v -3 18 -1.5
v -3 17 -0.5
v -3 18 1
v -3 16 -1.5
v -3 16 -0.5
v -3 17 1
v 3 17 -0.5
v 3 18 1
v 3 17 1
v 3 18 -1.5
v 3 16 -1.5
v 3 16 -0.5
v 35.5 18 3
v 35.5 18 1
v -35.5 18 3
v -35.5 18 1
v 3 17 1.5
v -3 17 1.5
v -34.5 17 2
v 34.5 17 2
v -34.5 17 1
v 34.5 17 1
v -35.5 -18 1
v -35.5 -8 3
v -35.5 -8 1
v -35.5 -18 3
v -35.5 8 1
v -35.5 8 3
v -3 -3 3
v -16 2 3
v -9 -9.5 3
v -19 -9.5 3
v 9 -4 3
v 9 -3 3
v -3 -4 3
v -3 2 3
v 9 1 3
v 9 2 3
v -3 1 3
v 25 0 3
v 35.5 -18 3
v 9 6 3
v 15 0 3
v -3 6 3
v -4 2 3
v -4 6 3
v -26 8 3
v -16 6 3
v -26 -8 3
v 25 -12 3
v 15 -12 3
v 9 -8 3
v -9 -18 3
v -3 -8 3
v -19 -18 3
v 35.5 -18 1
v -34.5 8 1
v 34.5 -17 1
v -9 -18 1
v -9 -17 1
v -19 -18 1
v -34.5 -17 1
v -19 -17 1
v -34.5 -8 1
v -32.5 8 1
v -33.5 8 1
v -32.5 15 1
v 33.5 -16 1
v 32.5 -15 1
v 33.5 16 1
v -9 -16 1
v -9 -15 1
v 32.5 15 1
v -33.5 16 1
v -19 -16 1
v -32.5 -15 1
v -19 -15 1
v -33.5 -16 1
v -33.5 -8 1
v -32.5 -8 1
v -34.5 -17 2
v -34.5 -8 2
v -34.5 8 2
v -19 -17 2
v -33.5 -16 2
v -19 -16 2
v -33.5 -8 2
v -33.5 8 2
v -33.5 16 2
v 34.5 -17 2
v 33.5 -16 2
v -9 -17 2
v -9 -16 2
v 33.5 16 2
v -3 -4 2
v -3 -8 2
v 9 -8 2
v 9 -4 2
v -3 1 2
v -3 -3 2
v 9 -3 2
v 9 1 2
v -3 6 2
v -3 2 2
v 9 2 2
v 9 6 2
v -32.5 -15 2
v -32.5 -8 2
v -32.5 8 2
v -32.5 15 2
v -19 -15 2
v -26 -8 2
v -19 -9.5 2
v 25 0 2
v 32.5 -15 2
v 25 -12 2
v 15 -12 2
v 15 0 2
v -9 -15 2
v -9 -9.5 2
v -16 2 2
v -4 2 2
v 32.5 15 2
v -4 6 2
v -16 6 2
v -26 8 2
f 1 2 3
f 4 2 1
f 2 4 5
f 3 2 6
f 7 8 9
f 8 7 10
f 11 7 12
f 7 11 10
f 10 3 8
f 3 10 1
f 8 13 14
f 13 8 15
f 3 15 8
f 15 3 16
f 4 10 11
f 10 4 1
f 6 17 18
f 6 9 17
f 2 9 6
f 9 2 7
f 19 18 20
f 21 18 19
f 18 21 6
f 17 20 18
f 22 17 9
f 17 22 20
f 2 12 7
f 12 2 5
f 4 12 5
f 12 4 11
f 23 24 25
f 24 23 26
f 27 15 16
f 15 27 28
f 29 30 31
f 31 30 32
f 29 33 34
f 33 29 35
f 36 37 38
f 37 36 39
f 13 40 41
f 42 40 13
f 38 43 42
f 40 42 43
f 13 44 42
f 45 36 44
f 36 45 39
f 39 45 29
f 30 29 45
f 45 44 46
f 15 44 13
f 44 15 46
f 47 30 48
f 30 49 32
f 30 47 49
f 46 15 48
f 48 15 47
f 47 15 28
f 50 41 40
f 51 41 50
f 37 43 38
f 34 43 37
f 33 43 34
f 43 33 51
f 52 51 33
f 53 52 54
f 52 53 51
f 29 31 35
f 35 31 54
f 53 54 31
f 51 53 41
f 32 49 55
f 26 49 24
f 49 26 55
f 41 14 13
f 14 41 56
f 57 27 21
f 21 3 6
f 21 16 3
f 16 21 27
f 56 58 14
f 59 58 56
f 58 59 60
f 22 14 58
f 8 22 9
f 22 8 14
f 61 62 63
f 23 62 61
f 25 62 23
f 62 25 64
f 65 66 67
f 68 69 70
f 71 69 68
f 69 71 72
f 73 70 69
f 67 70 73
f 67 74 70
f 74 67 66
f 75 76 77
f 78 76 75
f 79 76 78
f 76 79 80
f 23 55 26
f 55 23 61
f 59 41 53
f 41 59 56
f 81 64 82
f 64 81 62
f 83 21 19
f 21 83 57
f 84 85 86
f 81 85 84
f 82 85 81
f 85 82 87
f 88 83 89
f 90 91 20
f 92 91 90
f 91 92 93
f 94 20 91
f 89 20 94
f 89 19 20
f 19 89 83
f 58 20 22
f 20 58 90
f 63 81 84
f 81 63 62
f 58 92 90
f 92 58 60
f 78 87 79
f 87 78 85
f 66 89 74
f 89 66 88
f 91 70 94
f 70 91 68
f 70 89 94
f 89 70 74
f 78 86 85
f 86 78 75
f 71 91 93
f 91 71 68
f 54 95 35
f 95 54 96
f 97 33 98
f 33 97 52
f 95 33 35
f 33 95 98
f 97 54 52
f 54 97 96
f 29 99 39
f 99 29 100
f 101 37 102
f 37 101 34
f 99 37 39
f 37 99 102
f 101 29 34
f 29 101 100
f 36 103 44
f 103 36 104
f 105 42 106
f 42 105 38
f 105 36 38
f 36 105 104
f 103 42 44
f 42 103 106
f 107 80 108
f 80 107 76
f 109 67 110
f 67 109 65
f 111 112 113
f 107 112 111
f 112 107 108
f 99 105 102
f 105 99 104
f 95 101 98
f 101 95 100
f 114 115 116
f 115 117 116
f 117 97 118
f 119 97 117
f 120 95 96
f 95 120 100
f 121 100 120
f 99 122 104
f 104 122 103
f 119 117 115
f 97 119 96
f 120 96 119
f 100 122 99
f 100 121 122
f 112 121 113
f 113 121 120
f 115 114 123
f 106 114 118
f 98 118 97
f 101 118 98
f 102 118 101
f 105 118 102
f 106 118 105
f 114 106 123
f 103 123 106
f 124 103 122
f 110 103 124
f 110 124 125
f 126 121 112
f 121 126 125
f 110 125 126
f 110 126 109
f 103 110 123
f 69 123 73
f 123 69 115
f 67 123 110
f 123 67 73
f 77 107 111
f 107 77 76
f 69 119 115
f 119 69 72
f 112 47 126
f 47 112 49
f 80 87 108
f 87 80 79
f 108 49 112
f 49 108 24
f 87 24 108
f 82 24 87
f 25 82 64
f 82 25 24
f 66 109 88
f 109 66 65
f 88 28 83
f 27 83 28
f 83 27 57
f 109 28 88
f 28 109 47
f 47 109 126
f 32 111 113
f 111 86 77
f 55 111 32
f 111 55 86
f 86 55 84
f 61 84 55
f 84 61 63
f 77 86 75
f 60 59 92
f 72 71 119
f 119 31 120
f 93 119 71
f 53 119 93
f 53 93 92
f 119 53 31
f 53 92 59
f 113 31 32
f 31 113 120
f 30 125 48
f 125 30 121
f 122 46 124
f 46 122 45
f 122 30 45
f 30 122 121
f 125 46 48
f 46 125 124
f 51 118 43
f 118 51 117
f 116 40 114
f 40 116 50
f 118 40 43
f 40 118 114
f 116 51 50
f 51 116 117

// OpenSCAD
// file: atoi.scad
function atoi(a)=
(a=="!")?33:
(a=="\"")?34:
(a=="#")?35:
(a=="$")?36:
(a=="%")?37:
(a=="&")?38:
(a=="'")?39:
(a=="(")?40:
(a==")")?41:
(a=="*")?42:
(a=="+")?43:
(a==",")?44:
(a=="-")?45:
(a==".")?46:
(a=="/")?47:
(a=="0")?48:
(a=="1")?49:
(a=="2")?50:
(a=="3")?51:
(a=="4")?52:
(a=="5")?53:
(a=="6")?54:
(a=="7")?55:
(a=="8")?56:
(a=="9")?57:
(a==":")?58:
(a==";")?59:
(a=="<")?60:
(a=="=")?61:
(a==">")?62:
(a=="?")?63:
(a=="@")?64:
(a=="A")?65:
(a=="B")?66:
(a=="C")?67:
(a=="D")?68:
(a=="E")?69:
(a=="F")?70:
(a=="G")?71:
(a=="H")?72:
(a=="I")?73:
(a=="J")?74:
(a=="K")?75:
(a=="L")?76:
(a=="M")?77:
(a=="N")?78:
(a=="O")?79:
(a=="P")?80:
(a=="Q")?81:
(a=="R")?82:
(a=="S")?83:
(a=="T")?84:
(a=="U")?85:
(a=="V")?86:
(a=="W")?87:
(a=="X")?88:
(a=="Y")?89:
(a=="Z")?90:
(a=="[")?91:
(a=="\\")?92:
(a=="]")?93:
(a=="^")?94:
(a=="_")?95:
(a=="`")?96:
(a=="a")?97:
(a=="b")?98:
(a=="c")?99:
(a=="d")?100:
(a=="e")?101:
(a=="f")?102:
(a=="g")?103:
(a=="h")?104:
(a=="i")?105:
(a=="j")?106:
(a=="k")?107:
(a=="l")?108:
(a=="m")?109:
(a=="n")?110:
(a=="o")?111:
(a=="p")?112:
(a=="q")?113:
(a=="r")?114:
(a=="s")?115:
(a=="t")?116:
(a=="u")?117:
(a=="v")?118:
(a=="w")?119:
(a=="x")?120:
(a=="y")?121:
(a=="z")?122:
(a=="{")?123:
(a=="|")?124:
(a=="}")?125:
(a=="~")?126:
(a=="€")?128:
(a=="‚")?130:
(a=="ƒ")?131:
(a=="„")?132:
(a=="…")?133:
(a=="†")?134:
(a=="‡")?135:
(a=="ˆ")?136:
(a=="‰")?137:
(a=="Š")?138:
(a=="‹")?139:
(a=="Œ")?140:
(a=="Ž")?142:
(a=="‘")?145:
(a=="’")?146:
(a=="“")?147:
(a=="”")?148:
(a=="•")?149:
(a=="–")?150:
(a=="—")?151:
(a=="˜")?152:
(a=="™")?153:
(a=="š")?154:
(a=="›")?155:
(a=="œ")?156:
(a=="ž")?158:
(a=="Ÿ")?159:
(a=="¡")?161:
(a=="¢")?162:
(a=="£")?163:
(a=="¤")?164:
(a=="¥")?165:
(a=="¦")?166:
(a=="§")?167:
(a=="¨")?168:
(a=="©")?169:
(a=="ª")?170:
(a=="«")?171:
(a=="¬")?172:
(a=="®")?174:
(a=="¯")?175:
(a=="°")?176:
(a=="±")?177:
(a=="²")?178:
(a=="³")?179:
(a=="´")?180:
(a=="µ")?181:
(a=="¶")?182:
(a=="·")?183:
(a=="¸")?184:
(a=="¹")?185:
(a=="º")?186:
(a=="»")?187:
(a=="¼")?188:
(a=="½")?189:
(a=="¾")?190:
(a=="¿")?191:
(a=="À")?192:
(a=="Á")?193:
(a=="Â")?194:
(a=="Ã")?195:
(a=="Ä")?196:
(a=="Å")?197:
(a=="Æ")?198:
(a=="Ç")?199:
(a=="È")?200:
(a=="É")?201:
(a=="Ê")?202:
(a=="Ë")?203:
(a=="Ì")?204:
(a=="Í")?205:
(a=="Î")?206:
(a=="Ï")?207:
(a=="Ð")?208:
(a=="Ñ")?209:
(a=="Ò")?210:
(a=="Ó")?211:
(a=="Ô")?212:
(a=="Õ")?213:
(a=="Ö")?214:
(a=="×")?215:
(a=="Ø")?216:
(a=="Ù")?217:
(a=="Ú")?218:
(a=="Û")?219:
(a=="Ü")?220:
(a=="Ý")?221:
(a=="Þ")?222:
(a=="ß")?223:
(a=="à")?224:
(a=="á")?225:
(a=="â")?226:
(a=="ã")?227:
(a=="ä")?228:
(a=="å")?229:
(a=="æ")?230:
(a=="ç")?231:
(a=="è")?232:
(a=="é")?233:
(a=="ê")?234:
(a=="ë")?235:
(a=="ì")?236:
(a=="í")?237:
(a=="î")?238:
(a=="ï")?239:
(a=="ð")?240:
(a=="ñ")?241:
(a=="ò")?242:
(a=="ó")?243:
(a=="ô")?244:
(a=="õ")?245:
(a=="ö")?246:
(a=="÷")?247:
(a=="ø")?248:
(a=="ù")?249:
(a=="ú")?250:
(a=="û")?251:
(a=="ü")?252:
(a=="ý")?253:
(a=="þ")?254:
(a=="ÿ")?255:
0;
// file: write.scad
include <atoi.scad>;
module _write(font,s,h,p,i) {
	if(i<len(s)){
		if(s[i]==" "){
			translate([dxf_dim(file = font, name = str(atoi("-"),"_width")),0,0])
				_write(font,s,h,p,i+1);
		}else{
			linear_extrude(height=h) import(font,layer=atoi(s[i]));		
			translate([p+dxf_dim(file = font, name = str(atoi(s[i]),"_width")),0,0])
				_write(font,s,h,p,i+1);
		}
	}
}
module write(s,h,p){
	_write("GaroaHackerClubeBold.dxf",s,h,1,0);
}
module write_custom(font,s,h,p){
	_write(font,s,h,p,0);
}
// main file
use<write.scad>

//translate([0,0,1])
//    cube([65,30,1], true);

translate([0,0,2]) 
{
    difference() 
    {
    union()
    {
        translate([0,0,-0.5])
            cube([67,32,1], true);
        difference()
        {
            cube([71,36,2], true);
            
            translate([0,0,-1])
                cube([69,34,2], true);
        }
    }
    
    //make the top thinner
    translate([0,0,-0.5])
        cube([65,30,1], true);
    
    //IRTX
    translate([-31,0,4])
        cube([10,16,10], true);
    
    //IRRX
    translate([-14,-14,4])
        cube([10,9,10], true);
    
    //UART
    translate([-10,4,4])
        cube([12,4,10], true);
    
    //I2C sensors   
    for(sensor = [-6 : 5 : 4])
    {
        translate([3,sensor,4])
            cube([12,4,10], true);
    }
    
    //EEPROM
    translate([20,-6,4])
        cube([10,12,10], true); 
    
    //microSD card
    //translate([-33.5,2,4])
    //    cube([7,14,10], true);
    
    //miniHDMI
    //translate([-19.5,-17,4])
    //    cube([14,5,10], true);
    
    //1st microUSB
    //translate([21.5,-17,4])
    //    cube([9,5,10], true);
    
    //2st microUSB
    //translate([9.5,-17,4])
    //    cube([9,5,10], true);
        
    //40pin header
    //translate([0,12,0])
    //    cube([52,6,10], true);
    }
}

//Hanger
translate([0,17.5,0])
{
    union()
    {
        cube([6,1,3], true);
        translate([0,-1,-1])
            cube([6,1,1], true);
    }
}
